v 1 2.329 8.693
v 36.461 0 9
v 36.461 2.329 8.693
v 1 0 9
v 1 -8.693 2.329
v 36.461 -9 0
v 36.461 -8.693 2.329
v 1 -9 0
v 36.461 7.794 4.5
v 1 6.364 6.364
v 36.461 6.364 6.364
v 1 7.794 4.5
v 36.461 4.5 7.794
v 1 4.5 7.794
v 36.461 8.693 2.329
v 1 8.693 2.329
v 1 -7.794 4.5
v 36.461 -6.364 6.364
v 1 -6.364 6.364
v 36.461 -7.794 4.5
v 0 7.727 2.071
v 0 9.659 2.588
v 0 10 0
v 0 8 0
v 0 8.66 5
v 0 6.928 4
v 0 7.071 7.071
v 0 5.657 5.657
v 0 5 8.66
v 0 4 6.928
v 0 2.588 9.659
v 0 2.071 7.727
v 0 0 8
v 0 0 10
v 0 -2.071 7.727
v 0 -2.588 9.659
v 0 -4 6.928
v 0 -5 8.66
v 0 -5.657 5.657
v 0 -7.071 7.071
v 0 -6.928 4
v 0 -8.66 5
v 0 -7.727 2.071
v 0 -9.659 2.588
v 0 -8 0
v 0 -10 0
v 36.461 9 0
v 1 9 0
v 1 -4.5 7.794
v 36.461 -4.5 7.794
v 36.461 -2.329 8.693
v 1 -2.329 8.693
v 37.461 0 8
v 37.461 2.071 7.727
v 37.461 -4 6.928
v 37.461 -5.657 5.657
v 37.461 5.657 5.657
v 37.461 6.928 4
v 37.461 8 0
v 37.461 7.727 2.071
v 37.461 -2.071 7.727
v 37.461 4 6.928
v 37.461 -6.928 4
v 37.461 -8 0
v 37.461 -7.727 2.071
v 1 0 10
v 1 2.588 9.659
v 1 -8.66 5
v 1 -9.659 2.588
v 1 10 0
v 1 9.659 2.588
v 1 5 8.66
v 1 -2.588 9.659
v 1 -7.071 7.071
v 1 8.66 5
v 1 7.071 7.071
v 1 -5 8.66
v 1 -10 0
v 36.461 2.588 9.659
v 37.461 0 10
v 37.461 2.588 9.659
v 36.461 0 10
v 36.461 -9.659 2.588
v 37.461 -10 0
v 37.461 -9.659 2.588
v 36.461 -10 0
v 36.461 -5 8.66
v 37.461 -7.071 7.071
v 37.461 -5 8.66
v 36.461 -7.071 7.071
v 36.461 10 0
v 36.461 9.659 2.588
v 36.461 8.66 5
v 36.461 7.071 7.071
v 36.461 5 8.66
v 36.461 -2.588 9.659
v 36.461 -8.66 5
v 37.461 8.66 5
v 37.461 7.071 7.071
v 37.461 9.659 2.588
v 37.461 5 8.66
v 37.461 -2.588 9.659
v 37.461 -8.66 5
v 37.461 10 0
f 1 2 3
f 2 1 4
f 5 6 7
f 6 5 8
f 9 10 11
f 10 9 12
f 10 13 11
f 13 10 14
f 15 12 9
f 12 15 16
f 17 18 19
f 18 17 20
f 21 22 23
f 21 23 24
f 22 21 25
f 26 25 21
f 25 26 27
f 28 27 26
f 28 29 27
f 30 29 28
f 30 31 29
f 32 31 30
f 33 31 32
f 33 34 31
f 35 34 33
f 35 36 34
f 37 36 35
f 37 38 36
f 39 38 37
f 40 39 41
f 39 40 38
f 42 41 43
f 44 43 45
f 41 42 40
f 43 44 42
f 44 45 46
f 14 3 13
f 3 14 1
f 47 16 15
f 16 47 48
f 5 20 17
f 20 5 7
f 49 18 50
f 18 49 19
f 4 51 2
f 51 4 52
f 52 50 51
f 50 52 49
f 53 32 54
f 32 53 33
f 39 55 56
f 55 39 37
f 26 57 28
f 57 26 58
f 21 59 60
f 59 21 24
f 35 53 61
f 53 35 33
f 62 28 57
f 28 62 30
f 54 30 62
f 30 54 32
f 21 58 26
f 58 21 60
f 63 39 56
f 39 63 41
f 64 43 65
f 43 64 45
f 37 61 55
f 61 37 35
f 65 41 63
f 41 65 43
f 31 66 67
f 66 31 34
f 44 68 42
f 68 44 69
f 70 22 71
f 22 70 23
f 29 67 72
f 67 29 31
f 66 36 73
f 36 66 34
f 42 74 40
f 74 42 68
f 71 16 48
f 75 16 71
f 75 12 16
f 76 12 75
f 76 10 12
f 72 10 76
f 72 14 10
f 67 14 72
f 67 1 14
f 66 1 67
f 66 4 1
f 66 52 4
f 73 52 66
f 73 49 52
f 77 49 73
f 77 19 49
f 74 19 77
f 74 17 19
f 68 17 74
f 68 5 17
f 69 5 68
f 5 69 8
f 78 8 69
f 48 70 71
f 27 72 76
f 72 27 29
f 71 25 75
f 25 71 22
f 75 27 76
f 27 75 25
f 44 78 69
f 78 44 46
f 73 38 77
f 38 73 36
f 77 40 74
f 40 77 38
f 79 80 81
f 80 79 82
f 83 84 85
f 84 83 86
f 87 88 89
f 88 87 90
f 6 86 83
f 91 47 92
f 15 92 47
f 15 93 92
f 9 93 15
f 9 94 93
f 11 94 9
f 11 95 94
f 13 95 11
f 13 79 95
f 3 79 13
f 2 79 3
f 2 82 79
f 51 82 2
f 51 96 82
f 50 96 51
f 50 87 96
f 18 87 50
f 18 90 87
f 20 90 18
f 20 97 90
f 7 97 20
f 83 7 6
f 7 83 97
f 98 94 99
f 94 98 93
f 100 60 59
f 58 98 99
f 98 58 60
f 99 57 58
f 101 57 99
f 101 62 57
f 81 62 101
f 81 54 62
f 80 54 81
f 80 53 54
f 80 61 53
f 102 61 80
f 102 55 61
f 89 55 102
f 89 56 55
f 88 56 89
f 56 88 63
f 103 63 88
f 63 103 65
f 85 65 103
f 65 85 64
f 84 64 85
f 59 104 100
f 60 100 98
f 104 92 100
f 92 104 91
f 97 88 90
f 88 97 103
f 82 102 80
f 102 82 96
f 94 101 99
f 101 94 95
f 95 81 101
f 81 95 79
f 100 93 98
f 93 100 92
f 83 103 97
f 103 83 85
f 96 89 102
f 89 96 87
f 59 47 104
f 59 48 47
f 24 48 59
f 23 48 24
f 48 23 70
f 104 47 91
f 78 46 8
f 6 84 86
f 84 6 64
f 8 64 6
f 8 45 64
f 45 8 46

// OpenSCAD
// file: ../build_environments.scad
// build_environments.scad: modules to build level sections
//

module pool(diameter=10.0, wall_height=2.0, step_width=3.0, connections=[])
{
    difference() {
        union() {
        difference() {
            cylinder(h=0.5,r1=diameter+step_width,r2=diameter+step_width,$fn=48);
            translate([0,0,-0.1])
                cylinder(h=0.7,r1=diameter,r2=diameter,$fn=48);
        }
        difference() {
            cylinder(h=wall_height,r1=diameter+step_width+1.0,r2=diameter+step_width+1.0,$fn=48);
            translate([0,0,-0.1])
                cylinder(h=wall_height+0.2,r1=diameter+step_width,r2=diameter+step_width,$fn=48);
        }
        }
    
        for (c = connections)
        {
            rotate([0,90,0]) {
                angle = atan2(c[1],c[0]);
                rotate([-angle,0,0]) {
                    cylinder(h=diameter+5.0,r1=c[2],r2=c[2],$fn=48);
                }
            }
        }
    }
}

module straight(length=10.0, width=2.0, dy1=0.0, dy2=0.0, dz=0.0)
{
    dims = [0, 0, 0, 0, 0, (dz/length)];
    matrix = [
        [ 1, dims[0], dims[1], 0 ],
        [ dims[2], 1, dims[4], 0 ],
        [ dims[5], dims[3], 1, 0 ],
        [ 0, 0, 0, 1 ]
    ];
    multmatrix(matrix)
    difference() {
        translate([dy1,0,0])
        union() {
            rotate([0,90,0]) {
                difference() {
                    cylinder(h=(length-dy1-dy2),r1=width+1.0,r2=width+1.0,$fn=24);
                    translate([0,0,-0.1])
                        cylinder(h=(length-dy1-dy2+0.2),r1=width,r2=width,$fn=24);
                }
                difference() {
                    cylinder(h=1.0,r1=width+2.0,r2=width+2.0,$fn=24);
                    translate([0,0,-0.1])
                        cylinder(h=1.2,r1=width,r2=width,$fn=24);
                }
                translate([0,0,(length-dy1-dy2)-1.0]) {
                    difference() {
                        cylinder(h=1.0,r1=width+2.0,r2=width+2.0,$fn=24);
                        translate([0,0,-0.1])
                            cylinder(h=1.2,r1=width,r2=width,$fn=24);
                    }
                }
            }
        }
        translate([0,0,-(2*width+4.0)/2])
            cube([3*length,3*length,2*width+4.0],center=true);
    }
}

module curve(p0=[0,0], center=[0,0], dir=1, angle=0.0, width=2.0)
{
    radius = sqrt((p0[0]-center[0])*(p0[0]-center[0]) + (p0[1]-center[1])*(p0[1]-center[1]));
    if (dir == 0) {
        difference() {
            rotate([0,0,-90])
            difference() {
                rotate_extrude(angle = angle, convexity = 10, $fn=32)
                    translate([radius, 0, 0])
                        circle(r = width+1.0,$fn=24);
                rotate([0,0,-1.0])
                    rotate_extrude(angle = angle+2.0, convexity = 10, $fn=32)
                        translate([radius, 0, 0])
                            circle(r = width,$fn=24);
            }
            translate([0,0,-(2*width+4.0)/2])
                cube([5*radius,5*radius,2*width+4.0],center=true);
        }
    }
    else {
        difference() {
            rotate([0,0,90])
            difference() {
                rotate_extrude(angle = -angle, convexity = 10, $fn=32)
                    translate([radius, 0, 0])
                        circle(r = width+1.0,$fn=24);
                rotate([0,0,1.0])
                    rotate_extrude(angle = -angle-2.0, convexity = 10, $fn=32)
                        translate([radius, 0, 0])
                            circle(r = width,$fn=24);
            }
            translate([0,0,-(2*width+4.0)/2])
                cube([5*radius,5*radius,2*width+4.0],center=true);
        }
    }

}

// test pool
//pool(diameter=12.0000, wall_height=3.0000, step_width=3.0000, connections=[[0.0000,-26.0000,2.0000], [23.6074,0.0000,2.0000]]);

// test straight, slope
//straight(length=26.0000, width=2.0000, dy1=11.8322, dy2=6.7082, dz=0.0000);
//straight(length=29.1549, width=12.0000, dy1=0.0000, dy2=0.0000, dz=-15.0000);

// test curve
//curve(p0=[23.6074, 0.0000], center=[23.6074, 5.0000], dir=0, angle=60.1011, width=2.0000);
//curve(p0=[33.6426, 12.4219], center=[37.9771, 9.9295], dir=1, angle=120.4627, width=2.0000);
// main file
use <../build_environments.scad>;
straight(length=37.4612, width=8.0000, dy1=0.0000, dy2=0.0000, dz=0.0000);
